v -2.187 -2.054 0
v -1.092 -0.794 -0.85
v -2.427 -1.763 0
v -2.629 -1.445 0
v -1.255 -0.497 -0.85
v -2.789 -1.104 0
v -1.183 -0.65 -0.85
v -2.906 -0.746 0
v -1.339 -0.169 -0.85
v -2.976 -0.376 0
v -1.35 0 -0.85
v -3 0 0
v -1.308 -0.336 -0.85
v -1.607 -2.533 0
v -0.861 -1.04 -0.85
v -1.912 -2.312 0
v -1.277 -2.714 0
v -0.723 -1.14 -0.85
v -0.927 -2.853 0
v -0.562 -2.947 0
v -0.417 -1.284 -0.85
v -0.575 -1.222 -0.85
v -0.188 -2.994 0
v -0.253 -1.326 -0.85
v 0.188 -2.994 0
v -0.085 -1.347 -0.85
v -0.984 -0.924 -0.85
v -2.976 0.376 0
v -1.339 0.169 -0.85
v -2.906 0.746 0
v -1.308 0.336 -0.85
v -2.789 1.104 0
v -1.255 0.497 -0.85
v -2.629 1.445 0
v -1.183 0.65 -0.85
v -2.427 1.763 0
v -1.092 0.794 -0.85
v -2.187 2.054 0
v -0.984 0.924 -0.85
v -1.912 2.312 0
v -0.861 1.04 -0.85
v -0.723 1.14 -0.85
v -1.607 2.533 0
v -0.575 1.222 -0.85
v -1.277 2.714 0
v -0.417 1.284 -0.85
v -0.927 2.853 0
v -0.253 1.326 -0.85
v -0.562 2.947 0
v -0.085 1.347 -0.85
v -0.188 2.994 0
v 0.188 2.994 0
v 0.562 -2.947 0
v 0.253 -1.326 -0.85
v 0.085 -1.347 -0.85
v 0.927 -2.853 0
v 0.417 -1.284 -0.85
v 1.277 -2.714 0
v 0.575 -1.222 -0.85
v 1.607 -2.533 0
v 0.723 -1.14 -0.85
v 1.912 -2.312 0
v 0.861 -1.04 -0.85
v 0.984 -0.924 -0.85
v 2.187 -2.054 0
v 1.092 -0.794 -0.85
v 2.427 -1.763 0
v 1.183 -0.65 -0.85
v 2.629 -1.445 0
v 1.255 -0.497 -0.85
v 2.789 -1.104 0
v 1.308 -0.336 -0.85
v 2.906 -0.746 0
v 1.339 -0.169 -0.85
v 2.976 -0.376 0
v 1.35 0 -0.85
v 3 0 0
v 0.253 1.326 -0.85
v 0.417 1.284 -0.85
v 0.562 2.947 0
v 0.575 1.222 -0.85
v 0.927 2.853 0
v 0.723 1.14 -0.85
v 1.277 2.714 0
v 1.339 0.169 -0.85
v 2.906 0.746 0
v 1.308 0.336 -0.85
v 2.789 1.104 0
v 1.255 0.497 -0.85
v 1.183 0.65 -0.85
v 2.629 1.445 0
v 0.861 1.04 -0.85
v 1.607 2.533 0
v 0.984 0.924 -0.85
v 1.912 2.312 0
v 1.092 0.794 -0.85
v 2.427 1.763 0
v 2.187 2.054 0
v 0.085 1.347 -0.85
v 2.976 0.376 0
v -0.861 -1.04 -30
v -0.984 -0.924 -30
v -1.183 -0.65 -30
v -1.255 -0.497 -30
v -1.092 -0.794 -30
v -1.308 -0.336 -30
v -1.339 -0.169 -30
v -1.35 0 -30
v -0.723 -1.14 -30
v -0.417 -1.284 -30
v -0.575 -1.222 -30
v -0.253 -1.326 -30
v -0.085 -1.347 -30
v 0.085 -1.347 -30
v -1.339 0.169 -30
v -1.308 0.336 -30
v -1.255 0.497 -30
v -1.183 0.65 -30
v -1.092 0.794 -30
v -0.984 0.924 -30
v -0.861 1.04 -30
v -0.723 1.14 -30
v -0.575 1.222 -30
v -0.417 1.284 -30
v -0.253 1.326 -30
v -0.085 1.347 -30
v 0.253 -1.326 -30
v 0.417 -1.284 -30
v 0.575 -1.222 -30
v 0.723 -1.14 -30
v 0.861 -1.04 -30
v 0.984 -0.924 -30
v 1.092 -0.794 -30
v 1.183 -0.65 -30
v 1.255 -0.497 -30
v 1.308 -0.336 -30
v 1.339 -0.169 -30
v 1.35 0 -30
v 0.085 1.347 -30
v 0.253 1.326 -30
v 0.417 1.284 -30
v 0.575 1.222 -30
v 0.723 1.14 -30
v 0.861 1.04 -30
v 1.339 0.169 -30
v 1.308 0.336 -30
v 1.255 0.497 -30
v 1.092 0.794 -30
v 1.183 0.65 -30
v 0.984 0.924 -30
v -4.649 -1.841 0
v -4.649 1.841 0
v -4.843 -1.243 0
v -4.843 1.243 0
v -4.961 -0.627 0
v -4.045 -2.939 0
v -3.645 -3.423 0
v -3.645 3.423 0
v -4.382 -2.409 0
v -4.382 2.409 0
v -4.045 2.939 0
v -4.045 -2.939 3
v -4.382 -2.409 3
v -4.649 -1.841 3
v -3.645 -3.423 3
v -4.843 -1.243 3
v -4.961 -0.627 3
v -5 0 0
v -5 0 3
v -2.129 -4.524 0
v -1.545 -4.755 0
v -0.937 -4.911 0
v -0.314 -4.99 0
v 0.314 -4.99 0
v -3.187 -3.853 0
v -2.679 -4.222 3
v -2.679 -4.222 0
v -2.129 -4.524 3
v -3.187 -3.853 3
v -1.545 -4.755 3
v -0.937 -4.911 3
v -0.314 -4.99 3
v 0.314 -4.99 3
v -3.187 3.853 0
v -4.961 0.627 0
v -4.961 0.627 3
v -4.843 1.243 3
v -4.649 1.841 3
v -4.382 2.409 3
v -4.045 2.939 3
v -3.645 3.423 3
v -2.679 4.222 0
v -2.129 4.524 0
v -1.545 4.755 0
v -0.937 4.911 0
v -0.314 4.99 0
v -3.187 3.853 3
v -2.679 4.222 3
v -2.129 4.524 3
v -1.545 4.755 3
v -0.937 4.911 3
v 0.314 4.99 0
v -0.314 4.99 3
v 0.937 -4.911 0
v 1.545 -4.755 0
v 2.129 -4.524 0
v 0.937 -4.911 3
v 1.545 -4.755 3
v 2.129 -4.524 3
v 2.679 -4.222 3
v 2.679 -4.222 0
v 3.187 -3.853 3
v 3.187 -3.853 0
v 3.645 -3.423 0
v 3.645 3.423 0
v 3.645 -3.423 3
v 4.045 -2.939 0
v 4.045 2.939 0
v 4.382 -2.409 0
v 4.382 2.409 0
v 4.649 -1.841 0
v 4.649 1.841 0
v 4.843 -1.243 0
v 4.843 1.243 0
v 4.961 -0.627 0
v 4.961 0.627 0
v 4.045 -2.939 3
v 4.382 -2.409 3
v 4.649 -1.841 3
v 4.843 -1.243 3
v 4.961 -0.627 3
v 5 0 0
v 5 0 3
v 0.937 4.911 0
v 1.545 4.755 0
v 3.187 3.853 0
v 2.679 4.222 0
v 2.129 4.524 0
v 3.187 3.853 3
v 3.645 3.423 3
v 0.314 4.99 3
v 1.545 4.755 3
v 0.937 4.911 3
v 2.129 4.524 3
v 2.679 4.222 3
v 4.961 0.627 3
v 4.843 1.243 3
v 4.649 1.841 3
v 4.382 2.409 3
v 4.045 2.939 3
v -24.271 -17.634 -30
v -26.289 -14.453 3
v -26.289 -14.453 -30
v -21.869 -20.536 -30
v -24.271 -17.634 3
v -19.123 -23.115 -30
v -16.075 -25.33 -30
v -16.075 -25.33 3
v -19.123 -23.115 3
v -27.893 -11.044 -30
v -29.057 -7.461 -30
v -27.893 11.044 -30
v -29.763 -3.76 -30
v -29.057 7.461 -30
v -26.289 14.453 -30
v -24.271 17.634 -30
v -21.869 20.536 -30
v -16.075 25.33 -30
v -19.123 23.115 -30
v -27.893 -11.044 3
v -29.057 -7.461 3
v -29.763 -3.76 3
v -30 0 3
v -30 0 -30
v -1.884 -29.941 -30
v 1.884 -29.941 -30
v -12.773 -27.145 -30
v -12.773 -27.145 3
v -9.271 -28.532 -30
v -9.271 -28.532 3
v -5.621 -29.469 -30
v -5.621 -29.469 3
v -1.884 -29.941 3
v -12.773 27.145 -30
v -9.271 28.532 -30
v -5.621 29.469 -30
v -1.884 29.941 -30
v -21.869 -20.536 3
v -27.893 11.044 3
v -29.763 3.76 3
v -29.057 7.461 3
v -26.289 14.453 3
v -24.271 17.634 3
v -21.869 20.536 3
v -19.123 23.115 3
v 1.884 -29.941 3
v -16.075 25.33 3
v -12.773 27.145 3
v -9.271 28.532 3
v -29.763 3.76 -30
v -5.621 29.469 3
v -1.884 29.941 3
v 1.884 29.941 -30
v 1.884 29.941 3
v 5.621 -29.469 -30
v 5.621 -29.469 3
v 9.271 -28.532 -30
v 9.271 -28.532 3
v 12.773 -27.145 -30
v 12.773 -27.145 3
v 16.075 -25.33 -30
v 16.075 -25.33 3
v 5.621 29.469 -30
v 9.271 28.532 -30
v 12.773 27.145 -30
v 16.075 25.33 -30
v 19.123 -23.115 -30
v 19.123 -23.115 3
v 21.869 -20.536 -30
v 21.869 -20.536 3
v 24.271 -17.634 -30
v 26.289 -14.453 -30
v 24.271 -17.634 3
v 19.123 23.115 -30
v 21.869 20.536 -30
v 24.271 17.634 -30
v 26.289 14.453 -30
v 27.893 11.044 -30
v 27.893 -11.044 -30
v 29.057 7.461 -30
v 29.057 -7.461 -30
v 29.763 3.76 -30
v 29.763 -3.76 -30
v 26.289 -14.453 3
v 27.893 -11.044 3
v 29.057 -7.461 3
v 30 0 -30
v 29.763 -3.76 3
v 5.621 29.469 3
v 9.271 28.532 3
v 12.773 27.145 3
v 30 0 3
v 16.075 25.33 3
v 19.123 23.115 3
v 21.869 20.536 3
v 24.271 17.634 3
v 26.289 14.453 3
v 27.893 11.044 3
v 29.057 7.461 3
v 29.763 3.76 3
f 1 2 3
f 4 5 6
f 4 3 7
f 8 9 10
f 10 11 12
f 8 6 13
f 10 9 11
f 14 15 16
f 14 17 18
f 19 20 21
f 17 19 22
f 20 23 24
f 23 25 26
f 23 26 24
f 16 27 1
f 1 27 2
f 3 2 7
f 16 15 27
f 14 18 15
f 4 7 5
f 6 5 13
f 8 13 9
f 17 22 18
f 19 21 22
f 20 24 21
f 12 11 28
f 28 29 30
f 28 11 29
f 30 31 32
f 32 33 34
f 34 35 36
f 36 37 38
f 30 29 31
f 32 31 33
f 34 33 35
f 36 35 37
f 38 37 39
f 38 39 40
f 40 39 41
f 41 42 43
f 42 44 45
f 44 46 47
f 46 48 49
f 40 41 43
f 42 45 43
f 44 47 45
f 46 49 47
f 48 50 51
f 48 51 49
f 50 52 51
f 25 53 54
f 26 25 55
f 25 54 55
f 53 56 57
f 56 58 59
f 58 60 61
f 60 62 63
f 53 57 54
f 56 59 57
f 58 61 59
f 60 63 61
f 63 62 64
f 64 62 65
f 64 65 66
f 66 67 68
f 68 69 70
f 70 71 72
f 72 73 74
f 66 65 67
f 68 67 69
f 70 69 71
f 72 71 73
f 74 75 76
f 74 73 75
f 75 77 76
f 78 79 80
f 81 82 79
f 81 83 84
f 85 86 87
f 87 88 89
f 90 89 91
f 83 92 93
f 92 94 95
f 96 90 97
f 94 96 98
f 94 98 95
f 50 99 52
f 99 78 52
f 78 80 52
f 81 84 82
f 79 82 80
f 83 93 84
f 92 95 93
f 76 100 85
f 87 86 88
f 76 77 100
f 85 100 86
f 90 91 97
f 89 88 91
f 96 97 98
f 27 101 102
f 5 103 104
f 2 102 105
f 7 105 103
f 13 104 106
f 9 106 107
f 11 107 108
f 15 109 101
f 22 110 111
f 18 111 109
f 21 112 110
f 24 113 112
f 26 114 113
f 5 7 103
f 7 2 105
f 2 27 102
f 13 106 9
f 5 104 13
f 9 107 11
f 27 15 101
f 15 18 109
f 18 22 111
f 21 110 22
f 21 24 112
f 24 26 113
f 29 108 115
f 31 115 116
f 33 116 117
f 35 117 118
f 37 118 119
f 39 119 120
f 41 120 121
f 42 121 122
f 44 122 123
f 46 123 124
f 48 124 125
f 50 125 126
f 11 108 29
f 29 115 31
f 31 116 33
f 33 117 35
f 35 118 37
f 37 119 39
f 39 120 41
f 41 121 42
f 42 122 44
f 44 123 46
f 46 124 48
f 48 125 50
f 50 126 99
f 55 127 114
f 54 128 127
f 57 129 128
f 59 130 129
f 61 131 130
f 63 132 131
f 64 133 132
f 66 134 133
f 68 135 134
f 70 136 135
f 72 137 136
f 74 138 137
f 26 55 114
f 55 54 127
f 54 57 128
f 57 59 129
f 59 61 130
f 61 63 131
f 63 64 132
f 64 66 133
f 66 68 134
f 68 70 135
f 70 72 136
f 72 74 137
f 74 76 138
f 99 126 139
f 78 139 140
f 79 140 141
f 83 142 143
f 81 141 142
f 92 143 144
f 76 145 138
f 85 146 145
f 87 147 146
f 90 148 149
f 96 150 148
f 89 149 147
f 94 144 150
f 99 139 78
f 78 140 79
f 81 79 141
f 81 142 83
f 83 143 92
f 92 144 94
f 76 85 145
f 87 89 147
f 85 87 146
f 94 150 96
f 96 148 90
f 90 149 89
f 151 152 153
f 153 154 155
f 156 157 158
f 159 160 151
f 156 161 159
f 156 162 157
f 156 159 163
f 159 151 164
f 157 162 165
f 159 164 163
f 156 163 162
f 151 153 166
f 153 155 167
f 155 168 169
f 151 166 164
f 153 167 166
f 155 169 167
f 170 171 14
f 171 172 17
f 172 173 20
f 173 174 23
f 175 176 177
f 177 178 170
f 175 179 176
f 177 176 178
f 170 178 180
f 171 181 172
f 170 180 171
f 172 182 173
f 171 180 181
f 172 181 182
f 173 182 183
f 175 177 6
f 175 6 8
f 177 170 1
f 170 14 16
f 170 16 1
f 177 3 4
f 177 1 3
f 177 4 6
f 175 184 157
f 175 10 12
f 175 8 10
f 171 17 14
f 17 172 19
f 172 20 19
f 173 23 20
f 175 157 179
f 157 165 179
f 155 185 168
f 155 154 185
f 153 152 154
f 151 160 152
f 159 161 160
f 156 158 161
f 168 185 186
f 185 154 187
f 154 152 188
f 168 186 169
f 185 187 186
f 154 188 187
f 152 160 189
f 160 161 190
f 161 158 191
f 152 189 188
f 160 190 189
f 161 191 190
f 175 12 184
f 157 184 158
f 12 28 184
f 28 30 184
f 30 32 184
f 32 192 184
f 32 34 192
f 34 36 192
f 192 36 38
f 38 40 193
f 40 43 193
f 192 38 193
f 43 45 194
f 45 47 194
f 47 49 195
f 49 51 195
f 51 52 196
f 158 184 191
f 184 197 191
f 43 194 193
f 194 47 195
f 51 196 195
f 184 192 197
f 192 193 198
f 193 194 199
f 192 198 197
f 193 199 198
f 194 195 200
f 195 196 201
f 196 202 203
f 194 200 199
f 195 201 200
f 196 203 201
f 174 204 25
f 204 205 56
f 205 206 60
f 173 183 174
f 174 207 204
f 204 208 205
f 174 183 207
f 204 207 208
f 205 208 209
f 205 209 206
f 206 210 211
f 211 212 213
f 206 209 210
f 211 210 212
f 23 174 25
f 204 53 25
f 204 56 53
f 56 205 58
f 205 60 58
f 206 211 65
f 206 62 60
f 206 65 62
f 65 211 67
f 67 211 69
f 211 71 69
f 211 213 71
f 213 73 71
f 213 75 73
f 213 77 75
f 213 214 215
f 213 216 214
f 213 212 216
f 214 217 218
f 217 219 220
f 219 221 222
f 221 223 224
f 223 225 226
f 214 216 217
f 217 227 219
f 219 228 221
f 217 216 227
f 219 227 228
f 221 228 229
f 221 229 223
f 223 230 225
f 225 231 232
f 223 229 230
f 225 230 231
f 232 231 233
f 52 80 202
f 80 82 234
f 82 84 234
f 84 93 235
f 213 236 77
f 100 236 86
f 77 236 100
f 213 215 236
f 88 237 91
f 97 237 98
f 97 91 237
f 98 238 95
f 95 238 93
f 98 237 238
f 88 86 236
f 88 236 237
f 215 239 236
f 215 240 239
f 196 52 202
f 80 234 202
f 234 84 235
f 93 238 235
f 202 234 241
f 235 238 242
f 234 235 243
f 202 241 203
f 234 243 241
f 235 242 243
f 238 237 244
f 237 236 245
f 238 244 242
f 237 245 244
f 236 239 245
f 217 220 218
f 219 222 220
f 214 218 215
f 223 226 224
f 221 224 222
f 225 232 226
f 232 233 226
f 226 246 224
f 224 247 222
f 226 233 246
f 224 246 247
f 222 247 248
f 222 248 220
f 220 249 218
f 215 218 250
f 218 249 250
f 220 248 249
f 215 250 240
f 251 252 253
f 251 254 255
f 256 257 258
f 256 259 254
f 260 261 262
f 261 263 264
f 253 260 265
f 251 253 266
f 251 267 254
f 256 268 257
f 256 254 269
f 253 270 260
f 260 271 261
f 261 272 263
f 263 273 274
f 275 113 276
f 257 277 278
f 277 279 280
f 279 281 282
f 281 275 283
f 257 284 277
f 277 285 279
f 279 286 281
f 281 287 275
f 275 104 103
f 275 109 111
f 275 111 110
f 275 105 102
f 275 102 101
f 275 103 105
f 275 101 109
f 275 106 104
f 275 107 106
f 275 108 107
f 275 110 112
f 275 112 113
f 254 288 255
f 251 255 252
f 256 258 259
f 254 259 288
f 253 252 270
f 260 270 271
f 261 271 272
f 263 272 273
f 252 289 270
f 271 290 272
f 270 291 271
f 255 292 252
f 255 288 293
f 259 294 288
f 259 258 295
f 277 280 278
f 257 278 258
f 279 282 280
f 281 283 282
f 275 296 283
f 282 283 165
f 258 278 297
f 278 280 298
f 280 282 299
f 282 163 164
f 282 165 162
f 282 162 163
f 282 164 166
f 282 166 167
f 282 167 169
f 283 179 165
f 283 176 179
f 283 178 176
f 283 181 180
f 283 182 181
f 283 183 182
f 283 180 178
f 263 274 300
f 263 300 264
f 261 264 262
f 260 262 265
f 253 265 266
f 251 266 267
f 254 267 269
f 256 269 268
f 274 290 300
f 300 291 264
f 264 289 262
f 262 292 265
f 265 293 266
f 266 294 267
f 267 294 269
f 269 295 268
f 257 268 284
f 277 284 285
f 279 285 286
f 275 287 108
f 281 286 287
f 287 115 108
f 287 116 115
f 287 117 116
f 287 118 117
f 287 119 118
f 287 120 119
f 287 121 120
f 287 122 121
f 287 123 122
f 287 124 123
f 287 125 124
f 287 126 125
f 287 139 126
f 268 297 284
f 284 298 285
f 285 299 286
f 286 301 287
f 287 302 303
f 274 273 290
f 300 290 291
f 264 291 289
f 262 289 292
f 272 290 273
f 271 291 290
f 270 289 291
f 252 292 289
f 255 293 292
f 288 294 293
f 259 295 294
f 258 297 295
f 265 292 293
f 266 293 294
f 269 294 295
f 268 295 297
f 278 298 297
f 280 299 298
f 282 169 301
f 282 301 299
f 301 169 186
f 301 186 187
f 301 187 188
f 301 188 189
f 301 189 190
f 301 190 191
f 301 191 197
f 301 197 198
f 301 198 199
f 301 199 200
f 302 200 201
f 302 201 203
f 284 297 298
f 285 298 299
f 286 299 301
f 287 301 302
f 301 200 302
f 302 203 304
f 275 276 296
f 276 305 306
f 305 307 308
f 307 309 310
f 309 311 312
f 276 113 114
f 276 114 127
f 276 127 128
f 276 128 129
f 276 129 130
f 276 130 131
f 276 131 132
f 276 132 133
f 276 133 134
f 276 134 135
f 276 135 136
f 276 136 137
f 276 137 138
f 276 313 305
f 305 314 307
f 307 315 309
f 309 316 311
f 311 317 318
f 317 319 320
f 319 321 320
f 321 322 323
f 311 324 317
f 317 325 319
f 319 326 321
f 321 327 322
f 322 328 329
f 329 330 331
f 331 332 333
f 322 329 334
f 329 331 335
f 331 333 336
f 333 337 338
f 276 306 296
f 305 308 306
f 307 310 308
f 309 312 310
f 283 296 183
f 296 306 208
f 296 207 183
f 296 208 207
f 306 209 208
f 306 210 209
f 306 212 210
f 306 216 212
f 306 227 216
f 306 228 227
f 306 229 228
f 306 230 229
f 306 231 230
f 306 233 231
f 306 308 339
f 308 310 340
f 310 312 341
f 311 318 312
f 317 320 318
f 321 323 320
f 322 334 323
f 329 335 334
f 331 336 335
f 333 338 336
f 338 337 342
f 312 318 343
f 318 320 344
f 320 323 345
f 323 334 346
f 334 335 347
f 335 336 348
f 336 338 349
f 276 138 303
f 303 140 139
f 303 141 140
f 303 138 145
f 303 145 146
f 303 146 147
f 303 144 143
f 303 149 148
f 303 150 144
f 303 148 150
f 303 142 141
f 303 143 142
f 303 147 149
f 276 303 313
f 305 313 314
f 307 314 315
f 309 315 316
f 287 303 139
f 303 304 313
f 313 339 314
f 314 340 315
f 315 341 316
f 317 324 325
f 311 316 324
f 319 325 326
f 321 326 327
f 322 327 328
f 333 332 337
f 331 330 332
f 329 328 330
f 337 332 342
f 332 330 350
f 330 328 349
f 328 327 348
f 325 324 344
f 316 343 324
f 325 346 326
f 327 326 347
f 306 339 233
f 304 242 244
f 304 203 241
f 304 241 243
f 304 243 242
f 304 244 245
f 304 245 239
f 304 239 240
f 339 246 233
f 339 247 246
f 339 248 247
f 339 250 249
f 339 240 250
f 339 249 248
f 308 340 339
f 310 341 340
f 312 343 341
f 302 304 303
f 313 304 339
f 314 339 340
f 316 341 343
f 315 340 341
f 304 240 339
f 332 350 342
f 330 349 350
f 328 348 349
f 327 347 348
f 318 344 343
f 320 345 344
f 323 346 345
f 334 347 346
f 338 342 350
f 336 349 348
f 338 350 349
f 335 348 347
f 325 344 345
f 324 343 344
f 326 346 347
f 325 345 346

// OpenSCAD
$fn = 50;


difference() {
	union() {
		translate(v = [0, 0, -30.0000000000]) {
			cylinder(h = 33, r = 30.0000000000);
		}
	}
	union() {
		translate(v = [0, 0, 0]) {
			rotate(a = [0, 0, 0]) {
				difference() {
					union() {
						translate(v = [0, 0, -33.0000000000]) {
							cylinder(h = 33, r = 1.0000000000);
						}
						translate(v = [0, 0, -0.8500000000]) {
							cylinder(h = 0.8500000000, r1 = 1.3500000000, r2 = 3.0000000000);
						}
						translate(v = [0, 0, -33.0000000000]) {
							cylinder(h = 33, r = 1.3500000000);
						}
						translate(v = [0, 0, -33.0000000000]) {
							cylinder(h = 33, r = 1.0000000000);
						}
					}
					union();
				}
			}
		}
		#cylinder(h = 3, r = 5.0000000000);
	}
}
